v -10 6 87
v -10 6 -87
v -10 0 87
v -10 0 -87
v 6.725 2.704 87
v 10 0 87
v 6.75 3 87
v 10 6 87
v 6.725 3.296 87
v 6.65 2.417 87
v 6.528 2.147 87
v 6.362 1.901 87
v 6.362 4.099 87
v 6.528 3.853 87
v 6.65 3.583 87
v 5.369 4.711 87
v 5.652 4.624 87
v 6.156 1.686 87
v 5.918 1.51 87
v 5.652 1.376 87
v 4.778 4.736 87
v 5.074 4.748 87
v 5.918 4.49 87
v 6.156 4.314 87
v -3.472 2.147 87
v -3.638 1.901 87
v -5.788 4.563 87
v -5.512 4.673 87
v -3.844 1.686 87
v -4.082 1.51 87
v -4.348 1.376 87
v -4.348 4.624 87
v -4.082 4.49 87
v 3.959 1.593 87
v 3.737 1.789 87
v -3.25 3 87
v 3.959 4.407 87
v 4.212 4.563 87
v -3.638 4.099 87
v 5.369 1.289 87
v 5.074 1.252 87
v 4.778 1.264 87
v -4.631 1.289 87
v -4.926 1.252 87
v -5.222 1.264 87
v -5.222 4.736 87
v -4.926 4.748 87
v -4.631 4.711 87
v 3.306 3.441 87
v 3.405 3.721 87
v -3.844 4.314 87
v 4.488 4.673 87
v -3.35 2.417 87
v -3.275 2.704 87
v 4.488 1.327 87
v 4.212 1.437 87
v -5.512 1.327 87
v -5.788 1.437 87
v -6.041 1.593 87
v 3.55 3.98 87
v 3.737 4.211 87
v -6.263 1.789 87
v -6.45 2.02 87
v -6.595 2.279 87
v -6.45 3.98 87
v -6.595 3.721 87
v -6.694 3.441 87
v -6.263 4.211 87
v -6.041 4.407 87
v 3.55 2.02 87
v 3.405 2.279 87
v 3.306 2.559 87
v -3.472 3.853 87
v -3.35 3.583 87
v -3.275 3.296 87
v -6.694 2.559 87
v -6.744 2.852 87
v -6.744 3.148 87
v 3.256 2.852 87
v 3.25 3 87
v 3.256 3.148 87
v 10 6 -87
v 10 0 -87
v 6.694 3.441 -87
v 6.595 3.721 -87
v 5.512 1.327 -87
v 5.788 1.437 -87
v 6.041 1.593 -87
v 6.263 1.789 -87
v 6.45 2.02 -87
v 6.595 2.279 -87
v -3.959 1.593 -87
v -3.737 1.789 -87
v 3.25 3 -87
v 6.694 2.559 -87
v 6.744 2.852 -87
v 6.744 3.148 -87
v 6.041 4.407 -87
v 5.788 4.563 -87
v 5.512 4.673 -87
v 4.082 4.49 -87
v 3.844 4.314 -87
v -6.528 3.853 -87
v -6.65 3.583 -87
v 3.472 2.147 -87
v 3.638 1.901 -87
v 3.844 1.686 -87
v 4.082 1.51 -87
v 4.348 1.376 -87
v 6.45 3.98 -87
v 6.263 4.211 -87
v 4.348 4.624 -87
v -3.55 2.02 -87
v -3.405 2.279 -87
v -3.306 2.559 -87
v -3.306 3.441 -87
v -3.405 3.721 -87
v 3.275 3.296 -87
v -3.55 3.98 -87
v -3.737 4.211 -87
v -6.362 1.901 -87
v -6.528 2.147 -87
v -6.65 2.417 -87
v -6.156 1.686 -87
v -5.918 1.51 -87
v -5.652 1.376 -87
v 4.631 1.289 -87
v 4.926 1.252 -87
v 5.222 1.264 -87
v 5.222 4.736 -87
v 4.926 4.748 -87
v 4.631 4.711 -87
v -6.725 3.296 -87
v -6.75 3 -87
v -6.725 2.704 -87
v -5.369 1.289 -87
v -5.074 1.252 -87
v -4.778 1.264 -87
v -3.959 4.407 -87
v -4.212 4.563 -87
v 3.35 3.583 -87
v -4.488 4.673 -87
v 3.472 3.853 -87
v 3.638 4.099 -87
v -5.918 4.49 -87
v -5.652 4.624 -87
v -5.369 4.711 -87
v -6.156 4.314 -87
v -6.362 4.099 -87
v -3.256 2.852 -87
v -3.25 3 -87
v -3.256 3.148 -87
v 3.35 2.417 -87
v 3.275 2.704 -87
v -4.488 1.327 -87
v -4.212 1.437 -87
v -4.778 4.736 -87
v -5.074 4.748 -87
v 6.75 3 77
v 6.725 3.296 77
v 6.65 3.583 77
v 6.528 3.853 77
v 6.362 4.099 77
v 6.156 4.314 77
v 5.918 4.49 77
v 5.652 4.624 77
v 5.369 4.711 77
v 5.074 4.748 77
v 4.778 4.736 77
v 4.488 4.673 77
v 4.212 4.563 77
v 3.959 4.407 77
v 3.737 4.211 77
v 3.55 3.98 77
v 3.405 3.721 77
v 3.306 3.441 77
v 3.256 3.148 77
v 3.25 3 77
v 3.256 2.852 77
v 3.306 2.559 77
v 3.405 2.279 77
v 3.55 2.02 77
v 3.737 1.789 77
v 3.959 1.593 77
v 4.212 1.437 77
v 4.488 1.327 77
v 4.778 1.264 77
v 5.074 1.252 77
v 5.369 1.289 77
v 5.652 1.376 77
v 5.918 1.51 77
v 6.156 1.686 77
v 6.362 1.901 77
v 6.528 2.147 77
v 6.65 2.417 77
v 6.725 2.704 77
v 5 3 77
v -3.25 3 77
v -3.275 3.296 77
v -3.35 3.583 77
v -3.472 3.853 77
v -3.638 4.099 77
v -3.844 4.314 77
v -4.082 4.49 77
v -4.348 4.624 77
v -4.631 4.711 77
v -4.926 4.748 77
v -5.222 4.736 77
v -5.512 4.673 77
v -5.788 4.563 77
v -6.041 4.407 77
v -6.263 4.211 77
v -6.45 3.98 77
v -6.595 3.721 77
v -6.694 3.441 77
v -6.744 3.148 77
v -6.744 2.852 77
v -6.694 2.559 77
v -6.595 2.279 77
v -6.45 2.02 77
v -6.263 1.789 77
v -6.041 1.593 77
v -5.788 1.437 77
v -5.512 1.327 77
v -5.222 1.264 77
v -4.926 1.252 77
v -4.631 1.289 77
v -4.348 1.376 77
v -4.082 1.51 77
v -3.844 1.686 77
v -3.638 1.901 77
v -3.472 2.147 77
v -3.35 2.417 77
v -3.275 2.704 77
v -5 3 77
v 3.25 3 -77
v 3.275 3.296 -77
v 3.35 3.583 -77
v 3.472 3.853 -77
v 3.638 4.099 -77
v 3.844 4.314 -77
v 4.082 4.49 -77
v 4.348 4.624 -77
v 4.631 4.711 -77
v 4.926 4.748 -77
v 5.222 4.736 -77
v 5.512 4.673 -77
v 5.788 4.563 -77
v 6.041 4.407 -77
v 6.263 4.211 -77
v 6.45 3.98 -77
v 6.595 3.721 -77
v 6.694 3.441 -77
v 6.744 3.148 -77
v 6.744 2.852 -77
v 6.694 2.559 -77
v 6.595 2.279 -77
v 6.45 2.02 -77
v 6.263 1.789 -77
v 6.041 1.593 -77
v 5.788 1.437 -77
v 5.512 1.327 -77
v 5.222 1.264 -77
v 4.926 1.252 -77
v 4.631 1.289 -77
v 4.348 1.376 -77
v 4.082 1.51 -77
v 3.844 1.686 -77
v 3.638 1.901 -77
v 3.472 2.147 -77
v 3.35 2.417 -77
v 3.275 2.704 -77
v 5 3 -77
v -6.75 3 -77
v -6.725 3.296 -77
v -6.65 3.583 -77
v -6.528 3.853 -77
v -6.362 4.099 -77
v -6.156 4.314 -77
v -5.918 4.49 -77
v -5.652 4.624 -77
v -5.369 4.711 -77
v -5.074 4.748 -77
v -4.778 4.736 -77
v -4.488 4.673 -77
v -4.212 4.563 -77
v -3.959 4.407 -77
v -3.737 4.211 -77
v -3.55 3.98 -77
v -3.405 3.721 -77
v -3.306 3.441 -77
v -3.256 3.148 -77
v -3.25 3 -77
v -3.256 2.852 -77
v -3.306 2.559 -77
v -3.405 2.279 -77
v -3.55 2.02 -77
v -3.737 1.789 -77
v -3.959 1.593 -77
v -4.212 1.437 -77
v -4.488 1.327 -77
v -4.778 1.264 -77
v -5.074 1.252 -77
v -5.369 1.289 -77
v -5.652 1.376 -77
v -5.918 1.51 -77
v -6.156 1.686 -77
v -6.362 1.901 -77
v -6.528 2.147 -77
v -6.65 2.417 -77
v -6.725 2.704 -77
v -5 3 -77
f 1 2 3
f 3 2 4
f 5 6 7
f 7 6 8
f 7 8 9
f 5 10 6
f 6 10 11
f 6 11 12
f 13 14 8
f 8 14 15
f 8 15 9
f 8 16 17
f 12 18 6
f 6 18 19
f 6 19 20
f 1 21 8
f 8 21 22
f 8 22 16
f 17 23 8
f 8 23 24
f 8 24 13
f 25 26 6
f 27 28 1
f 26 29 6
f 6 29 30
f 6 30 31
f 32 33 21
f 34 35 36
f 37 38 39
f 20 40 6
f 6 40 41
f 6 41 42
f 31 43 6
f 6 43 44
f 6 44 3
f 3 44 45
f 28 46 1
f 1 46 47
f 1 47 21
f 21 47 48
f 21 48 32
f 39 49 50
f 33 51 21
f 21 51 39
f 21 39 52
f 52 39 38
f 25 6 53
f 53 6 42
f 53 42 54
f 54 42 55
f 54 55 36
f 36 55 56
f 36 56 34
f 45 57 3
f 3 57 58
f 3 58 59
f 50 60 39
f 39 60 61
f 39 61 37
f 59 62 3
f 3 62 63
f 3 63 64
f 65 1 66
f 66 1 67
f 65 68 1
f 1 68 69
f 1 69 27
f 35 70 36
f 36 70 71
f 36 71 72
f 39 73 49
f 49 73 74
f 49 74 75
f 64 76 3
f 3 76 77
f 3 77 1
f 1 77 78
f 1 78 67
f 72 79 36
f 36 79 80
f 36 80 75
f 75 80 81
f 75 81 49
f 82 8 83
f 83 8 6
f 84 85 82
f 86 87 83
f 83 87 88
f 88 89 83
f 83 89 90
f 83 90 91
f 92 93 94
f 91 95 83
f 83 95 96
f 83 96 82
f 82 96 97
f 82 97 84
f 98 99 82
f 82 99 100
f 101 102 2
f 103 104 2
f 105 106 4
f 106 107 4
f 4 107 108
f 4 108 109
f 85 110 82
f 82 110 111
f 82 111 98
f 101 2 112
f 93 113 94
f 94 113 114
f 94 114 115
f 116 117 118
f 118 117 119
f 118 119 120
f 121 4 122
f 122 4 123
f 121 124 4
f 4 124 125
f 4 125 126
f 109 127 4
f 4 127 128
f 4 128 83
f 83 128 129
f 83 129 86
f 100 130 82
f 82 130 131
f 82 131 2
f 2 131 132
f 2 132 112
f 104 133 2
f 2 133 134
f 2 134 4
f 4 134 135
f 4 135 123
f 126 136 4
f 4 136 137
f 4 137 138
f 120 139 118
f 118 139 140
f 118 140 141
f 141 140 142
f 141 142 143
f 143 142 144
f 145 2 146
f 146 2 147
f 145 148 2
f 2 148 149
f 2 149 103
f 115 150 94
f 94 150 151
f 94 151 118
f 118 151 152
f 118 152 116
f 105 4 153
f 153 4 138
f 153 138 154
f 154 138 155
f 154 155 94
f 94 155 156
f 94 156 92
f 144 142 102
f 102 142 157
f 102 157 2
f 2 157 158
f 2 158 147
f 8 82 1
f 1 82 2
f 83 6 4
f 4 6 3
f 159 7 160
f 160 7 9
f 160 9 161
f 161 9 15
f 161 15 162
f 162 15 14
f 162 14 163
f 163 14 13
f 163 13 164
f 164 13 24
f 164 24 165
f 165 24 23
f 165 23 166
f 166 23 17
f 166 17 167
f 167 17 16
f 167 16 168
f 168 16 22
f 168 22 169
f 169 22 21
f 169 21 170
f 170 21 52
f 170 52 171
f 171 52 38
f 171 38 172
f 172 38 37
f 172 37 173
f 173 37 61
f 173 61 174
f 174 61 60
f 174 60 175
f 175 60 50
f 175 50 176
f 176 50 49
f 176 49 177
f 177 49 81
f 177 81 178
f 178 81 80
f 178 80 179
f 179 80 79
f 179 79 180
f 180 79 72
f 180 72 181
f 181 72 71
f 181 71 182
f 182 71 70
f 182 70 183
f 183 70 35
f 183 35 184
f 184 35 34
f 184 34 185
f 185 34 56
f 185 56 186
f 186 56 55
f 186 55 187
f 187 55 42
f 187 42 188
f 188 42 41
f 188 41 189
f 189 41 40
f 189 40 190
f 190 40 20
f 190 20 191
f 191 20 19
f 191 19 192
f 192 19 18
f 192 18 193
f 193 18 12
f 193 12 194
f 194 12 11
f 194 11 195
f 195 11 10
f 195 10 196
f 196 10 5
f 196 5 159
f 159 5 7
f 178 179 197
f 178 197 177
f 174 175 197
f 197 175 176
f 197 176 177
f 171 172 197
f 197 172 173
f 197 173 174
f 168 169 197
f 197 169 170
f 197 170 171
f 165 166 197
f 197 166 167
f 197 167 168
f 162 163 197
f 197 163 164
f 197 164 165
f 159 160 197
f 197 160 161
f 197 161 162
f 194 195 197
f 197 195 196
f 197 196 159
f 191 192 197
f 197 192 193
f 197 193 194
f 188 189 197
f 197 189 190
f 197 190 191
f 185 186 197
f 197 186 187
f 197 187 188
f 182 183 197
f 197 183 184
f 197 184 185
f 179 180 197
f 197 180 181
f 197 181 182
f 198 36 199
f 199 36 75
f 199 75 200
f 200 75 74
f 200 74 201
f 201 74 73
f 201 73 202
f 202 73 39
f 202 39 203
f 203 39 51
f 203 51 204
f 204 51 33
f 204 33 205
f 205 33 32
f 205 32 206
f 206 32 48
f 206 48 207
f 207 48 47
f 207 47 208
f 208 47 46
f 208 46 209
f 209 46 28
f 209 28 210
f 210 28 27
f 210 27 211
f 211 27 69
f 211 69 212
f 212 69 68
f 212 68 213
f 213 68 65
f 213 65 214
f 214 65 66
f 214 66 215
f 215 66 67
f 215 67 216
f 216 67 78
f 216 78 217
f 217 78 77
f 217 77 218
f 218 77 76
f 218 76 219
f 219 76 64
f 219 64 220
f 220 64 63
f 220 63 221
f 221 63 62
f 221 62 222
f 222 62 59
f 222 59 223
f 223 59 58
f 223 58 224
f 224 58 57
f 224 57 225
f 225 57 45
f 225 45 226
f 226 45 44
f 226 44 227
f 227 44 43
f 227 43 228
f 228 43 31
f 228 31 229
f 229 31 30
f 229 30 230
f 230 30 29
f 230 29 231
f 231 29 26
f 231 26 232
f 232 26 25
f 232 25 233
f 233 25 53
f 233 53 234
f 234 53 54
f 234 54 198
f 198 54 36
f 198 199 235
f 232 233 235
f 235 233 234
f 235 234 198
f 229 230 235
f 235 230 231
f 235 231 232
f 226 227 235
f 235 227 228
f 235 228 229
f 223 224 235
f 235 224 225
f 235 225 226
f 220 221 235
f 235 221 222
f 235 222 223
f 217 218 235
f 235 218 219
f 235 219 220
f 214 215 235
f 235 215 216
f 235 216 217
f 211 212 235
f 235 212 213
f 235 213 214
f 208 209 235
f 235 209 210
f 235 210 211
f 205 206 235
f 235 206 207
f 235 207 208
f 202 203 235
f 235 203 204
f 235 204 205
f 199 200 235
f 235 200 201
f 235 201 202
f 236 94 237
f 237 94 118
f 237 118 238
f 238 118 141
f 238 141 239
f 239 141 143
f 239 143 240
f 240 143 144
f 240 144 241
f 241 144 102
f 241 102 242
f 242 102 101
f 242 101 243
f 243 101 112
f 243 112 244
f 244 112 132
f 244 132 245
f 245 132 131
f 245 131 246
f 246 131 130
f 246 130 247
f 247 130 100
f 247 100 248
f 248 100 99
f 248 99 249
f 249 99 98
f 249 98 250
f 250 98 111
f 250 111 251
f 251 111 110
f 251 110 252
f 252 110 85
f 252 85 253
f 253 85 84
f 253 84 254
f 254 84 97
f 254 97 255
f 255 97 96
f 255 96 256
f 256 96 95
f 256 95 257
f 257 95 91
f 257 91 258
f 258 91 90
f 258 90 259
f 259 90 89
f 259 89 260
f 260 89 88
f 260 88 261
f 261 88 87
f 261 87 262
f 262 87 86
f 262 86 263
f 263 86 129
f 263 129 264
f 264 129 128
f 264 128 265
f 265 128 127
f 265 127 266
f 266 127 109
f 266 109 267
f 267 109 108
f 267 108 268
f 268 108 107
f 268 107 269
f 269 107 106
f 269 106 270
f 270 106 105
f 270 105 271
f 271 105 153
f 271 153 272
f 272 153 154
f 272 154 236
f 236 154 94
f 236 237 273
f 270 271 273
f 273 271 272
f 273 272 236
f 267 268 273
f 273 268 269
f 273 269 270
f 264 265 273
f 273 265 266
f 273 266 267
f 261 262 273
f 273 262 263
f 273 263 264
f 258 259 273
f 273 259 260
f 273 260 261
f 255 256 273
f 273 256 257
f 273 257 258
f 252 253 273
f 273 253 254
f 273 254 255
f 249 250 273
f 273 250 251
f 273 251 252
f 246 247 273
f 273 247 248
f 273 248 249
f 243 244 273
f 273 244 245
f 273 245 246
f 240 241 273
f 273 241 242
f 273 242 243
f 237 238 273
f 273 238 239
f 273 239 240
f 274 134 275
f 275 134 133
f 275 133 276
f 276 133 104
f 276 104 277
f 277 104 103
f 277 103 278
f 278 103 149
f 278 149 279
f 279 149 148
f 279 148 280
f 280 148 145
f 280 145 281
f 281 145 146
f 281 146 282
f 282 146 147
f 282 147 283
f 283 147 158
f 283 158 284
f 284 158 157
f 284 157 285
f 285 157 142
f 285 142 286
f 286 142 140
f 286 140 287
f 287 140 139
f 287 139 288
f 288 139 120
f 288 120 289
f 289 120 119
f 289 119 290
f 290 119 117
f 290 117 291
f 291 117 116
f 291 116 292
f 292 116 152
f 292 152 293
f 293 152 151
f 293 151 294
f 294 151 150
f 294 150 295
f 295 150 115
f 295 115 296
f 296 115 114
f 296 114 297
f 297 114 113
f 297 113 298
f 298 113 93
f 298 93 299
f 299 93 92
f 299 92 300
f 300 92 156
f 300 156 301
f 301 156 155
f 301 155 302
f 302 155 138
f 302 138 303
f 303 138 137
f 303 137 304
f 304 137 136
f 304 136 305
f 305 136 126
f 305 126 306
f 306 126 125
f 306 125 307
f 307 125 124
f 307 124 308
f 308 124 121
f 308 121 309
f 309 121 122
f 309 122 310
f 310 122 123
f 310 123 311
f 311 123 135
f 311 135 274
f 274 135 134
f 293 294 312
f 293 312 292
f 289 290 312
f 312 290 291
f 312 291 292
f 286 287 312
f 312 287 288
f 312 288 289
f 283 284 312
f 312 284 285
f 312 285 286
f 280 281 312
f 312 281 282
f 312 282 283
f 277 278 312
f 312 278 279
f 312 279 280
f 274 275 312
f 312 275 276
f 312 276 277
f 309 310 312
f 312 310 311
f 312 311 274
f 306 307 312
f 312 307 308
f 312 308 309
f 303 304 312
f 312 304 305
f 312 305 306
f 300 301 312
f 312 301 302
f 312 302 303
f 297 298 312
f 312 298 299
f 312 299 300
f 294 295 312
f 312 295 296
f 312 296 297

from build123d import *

# Parameters (mm, degrees)
SKETCH1_W               = 20
SKETCH1_H               = 174
MIDLINE_SUPPORT_DEPTH   = 6
SKETCH7_R               = 1.75
FRONT_SCREW_HOLES_DEPTH = 10


with BuildPart() as part:
    # Sketch1 → Midline Support (new body)
    with BuildSketch(Plane(origin=(0, 0, 0), x_dir=(1, 0, 0), z_dir=(0, 1, 0))):
        Rectangle(SKETCH1_W, SKETCH1_H)
    extrude(amount=MIDLINE_SUPPORT_DEPTH)

    # Sketch7 → Front Screw Holes (cut)
    with BuildSketch(Plane.XY.offset(87)):
        with Locations((-5, 3)):
            Circle(SKETCH7_R)
        with Locations((5, 3)):
            Circle(SKETCH7_R)
    front_screw_holes = extrude(amount=-FRONT_SCREW_HOLES_DEPTH, mode=Mode.SUBTRACT)

    # Rear Screw Holes: Front Screw Holes across plane
    add(front_screw_holes.mirror(Plane.XY), mode=Mode.SUBTRACT)


solid = part.part
